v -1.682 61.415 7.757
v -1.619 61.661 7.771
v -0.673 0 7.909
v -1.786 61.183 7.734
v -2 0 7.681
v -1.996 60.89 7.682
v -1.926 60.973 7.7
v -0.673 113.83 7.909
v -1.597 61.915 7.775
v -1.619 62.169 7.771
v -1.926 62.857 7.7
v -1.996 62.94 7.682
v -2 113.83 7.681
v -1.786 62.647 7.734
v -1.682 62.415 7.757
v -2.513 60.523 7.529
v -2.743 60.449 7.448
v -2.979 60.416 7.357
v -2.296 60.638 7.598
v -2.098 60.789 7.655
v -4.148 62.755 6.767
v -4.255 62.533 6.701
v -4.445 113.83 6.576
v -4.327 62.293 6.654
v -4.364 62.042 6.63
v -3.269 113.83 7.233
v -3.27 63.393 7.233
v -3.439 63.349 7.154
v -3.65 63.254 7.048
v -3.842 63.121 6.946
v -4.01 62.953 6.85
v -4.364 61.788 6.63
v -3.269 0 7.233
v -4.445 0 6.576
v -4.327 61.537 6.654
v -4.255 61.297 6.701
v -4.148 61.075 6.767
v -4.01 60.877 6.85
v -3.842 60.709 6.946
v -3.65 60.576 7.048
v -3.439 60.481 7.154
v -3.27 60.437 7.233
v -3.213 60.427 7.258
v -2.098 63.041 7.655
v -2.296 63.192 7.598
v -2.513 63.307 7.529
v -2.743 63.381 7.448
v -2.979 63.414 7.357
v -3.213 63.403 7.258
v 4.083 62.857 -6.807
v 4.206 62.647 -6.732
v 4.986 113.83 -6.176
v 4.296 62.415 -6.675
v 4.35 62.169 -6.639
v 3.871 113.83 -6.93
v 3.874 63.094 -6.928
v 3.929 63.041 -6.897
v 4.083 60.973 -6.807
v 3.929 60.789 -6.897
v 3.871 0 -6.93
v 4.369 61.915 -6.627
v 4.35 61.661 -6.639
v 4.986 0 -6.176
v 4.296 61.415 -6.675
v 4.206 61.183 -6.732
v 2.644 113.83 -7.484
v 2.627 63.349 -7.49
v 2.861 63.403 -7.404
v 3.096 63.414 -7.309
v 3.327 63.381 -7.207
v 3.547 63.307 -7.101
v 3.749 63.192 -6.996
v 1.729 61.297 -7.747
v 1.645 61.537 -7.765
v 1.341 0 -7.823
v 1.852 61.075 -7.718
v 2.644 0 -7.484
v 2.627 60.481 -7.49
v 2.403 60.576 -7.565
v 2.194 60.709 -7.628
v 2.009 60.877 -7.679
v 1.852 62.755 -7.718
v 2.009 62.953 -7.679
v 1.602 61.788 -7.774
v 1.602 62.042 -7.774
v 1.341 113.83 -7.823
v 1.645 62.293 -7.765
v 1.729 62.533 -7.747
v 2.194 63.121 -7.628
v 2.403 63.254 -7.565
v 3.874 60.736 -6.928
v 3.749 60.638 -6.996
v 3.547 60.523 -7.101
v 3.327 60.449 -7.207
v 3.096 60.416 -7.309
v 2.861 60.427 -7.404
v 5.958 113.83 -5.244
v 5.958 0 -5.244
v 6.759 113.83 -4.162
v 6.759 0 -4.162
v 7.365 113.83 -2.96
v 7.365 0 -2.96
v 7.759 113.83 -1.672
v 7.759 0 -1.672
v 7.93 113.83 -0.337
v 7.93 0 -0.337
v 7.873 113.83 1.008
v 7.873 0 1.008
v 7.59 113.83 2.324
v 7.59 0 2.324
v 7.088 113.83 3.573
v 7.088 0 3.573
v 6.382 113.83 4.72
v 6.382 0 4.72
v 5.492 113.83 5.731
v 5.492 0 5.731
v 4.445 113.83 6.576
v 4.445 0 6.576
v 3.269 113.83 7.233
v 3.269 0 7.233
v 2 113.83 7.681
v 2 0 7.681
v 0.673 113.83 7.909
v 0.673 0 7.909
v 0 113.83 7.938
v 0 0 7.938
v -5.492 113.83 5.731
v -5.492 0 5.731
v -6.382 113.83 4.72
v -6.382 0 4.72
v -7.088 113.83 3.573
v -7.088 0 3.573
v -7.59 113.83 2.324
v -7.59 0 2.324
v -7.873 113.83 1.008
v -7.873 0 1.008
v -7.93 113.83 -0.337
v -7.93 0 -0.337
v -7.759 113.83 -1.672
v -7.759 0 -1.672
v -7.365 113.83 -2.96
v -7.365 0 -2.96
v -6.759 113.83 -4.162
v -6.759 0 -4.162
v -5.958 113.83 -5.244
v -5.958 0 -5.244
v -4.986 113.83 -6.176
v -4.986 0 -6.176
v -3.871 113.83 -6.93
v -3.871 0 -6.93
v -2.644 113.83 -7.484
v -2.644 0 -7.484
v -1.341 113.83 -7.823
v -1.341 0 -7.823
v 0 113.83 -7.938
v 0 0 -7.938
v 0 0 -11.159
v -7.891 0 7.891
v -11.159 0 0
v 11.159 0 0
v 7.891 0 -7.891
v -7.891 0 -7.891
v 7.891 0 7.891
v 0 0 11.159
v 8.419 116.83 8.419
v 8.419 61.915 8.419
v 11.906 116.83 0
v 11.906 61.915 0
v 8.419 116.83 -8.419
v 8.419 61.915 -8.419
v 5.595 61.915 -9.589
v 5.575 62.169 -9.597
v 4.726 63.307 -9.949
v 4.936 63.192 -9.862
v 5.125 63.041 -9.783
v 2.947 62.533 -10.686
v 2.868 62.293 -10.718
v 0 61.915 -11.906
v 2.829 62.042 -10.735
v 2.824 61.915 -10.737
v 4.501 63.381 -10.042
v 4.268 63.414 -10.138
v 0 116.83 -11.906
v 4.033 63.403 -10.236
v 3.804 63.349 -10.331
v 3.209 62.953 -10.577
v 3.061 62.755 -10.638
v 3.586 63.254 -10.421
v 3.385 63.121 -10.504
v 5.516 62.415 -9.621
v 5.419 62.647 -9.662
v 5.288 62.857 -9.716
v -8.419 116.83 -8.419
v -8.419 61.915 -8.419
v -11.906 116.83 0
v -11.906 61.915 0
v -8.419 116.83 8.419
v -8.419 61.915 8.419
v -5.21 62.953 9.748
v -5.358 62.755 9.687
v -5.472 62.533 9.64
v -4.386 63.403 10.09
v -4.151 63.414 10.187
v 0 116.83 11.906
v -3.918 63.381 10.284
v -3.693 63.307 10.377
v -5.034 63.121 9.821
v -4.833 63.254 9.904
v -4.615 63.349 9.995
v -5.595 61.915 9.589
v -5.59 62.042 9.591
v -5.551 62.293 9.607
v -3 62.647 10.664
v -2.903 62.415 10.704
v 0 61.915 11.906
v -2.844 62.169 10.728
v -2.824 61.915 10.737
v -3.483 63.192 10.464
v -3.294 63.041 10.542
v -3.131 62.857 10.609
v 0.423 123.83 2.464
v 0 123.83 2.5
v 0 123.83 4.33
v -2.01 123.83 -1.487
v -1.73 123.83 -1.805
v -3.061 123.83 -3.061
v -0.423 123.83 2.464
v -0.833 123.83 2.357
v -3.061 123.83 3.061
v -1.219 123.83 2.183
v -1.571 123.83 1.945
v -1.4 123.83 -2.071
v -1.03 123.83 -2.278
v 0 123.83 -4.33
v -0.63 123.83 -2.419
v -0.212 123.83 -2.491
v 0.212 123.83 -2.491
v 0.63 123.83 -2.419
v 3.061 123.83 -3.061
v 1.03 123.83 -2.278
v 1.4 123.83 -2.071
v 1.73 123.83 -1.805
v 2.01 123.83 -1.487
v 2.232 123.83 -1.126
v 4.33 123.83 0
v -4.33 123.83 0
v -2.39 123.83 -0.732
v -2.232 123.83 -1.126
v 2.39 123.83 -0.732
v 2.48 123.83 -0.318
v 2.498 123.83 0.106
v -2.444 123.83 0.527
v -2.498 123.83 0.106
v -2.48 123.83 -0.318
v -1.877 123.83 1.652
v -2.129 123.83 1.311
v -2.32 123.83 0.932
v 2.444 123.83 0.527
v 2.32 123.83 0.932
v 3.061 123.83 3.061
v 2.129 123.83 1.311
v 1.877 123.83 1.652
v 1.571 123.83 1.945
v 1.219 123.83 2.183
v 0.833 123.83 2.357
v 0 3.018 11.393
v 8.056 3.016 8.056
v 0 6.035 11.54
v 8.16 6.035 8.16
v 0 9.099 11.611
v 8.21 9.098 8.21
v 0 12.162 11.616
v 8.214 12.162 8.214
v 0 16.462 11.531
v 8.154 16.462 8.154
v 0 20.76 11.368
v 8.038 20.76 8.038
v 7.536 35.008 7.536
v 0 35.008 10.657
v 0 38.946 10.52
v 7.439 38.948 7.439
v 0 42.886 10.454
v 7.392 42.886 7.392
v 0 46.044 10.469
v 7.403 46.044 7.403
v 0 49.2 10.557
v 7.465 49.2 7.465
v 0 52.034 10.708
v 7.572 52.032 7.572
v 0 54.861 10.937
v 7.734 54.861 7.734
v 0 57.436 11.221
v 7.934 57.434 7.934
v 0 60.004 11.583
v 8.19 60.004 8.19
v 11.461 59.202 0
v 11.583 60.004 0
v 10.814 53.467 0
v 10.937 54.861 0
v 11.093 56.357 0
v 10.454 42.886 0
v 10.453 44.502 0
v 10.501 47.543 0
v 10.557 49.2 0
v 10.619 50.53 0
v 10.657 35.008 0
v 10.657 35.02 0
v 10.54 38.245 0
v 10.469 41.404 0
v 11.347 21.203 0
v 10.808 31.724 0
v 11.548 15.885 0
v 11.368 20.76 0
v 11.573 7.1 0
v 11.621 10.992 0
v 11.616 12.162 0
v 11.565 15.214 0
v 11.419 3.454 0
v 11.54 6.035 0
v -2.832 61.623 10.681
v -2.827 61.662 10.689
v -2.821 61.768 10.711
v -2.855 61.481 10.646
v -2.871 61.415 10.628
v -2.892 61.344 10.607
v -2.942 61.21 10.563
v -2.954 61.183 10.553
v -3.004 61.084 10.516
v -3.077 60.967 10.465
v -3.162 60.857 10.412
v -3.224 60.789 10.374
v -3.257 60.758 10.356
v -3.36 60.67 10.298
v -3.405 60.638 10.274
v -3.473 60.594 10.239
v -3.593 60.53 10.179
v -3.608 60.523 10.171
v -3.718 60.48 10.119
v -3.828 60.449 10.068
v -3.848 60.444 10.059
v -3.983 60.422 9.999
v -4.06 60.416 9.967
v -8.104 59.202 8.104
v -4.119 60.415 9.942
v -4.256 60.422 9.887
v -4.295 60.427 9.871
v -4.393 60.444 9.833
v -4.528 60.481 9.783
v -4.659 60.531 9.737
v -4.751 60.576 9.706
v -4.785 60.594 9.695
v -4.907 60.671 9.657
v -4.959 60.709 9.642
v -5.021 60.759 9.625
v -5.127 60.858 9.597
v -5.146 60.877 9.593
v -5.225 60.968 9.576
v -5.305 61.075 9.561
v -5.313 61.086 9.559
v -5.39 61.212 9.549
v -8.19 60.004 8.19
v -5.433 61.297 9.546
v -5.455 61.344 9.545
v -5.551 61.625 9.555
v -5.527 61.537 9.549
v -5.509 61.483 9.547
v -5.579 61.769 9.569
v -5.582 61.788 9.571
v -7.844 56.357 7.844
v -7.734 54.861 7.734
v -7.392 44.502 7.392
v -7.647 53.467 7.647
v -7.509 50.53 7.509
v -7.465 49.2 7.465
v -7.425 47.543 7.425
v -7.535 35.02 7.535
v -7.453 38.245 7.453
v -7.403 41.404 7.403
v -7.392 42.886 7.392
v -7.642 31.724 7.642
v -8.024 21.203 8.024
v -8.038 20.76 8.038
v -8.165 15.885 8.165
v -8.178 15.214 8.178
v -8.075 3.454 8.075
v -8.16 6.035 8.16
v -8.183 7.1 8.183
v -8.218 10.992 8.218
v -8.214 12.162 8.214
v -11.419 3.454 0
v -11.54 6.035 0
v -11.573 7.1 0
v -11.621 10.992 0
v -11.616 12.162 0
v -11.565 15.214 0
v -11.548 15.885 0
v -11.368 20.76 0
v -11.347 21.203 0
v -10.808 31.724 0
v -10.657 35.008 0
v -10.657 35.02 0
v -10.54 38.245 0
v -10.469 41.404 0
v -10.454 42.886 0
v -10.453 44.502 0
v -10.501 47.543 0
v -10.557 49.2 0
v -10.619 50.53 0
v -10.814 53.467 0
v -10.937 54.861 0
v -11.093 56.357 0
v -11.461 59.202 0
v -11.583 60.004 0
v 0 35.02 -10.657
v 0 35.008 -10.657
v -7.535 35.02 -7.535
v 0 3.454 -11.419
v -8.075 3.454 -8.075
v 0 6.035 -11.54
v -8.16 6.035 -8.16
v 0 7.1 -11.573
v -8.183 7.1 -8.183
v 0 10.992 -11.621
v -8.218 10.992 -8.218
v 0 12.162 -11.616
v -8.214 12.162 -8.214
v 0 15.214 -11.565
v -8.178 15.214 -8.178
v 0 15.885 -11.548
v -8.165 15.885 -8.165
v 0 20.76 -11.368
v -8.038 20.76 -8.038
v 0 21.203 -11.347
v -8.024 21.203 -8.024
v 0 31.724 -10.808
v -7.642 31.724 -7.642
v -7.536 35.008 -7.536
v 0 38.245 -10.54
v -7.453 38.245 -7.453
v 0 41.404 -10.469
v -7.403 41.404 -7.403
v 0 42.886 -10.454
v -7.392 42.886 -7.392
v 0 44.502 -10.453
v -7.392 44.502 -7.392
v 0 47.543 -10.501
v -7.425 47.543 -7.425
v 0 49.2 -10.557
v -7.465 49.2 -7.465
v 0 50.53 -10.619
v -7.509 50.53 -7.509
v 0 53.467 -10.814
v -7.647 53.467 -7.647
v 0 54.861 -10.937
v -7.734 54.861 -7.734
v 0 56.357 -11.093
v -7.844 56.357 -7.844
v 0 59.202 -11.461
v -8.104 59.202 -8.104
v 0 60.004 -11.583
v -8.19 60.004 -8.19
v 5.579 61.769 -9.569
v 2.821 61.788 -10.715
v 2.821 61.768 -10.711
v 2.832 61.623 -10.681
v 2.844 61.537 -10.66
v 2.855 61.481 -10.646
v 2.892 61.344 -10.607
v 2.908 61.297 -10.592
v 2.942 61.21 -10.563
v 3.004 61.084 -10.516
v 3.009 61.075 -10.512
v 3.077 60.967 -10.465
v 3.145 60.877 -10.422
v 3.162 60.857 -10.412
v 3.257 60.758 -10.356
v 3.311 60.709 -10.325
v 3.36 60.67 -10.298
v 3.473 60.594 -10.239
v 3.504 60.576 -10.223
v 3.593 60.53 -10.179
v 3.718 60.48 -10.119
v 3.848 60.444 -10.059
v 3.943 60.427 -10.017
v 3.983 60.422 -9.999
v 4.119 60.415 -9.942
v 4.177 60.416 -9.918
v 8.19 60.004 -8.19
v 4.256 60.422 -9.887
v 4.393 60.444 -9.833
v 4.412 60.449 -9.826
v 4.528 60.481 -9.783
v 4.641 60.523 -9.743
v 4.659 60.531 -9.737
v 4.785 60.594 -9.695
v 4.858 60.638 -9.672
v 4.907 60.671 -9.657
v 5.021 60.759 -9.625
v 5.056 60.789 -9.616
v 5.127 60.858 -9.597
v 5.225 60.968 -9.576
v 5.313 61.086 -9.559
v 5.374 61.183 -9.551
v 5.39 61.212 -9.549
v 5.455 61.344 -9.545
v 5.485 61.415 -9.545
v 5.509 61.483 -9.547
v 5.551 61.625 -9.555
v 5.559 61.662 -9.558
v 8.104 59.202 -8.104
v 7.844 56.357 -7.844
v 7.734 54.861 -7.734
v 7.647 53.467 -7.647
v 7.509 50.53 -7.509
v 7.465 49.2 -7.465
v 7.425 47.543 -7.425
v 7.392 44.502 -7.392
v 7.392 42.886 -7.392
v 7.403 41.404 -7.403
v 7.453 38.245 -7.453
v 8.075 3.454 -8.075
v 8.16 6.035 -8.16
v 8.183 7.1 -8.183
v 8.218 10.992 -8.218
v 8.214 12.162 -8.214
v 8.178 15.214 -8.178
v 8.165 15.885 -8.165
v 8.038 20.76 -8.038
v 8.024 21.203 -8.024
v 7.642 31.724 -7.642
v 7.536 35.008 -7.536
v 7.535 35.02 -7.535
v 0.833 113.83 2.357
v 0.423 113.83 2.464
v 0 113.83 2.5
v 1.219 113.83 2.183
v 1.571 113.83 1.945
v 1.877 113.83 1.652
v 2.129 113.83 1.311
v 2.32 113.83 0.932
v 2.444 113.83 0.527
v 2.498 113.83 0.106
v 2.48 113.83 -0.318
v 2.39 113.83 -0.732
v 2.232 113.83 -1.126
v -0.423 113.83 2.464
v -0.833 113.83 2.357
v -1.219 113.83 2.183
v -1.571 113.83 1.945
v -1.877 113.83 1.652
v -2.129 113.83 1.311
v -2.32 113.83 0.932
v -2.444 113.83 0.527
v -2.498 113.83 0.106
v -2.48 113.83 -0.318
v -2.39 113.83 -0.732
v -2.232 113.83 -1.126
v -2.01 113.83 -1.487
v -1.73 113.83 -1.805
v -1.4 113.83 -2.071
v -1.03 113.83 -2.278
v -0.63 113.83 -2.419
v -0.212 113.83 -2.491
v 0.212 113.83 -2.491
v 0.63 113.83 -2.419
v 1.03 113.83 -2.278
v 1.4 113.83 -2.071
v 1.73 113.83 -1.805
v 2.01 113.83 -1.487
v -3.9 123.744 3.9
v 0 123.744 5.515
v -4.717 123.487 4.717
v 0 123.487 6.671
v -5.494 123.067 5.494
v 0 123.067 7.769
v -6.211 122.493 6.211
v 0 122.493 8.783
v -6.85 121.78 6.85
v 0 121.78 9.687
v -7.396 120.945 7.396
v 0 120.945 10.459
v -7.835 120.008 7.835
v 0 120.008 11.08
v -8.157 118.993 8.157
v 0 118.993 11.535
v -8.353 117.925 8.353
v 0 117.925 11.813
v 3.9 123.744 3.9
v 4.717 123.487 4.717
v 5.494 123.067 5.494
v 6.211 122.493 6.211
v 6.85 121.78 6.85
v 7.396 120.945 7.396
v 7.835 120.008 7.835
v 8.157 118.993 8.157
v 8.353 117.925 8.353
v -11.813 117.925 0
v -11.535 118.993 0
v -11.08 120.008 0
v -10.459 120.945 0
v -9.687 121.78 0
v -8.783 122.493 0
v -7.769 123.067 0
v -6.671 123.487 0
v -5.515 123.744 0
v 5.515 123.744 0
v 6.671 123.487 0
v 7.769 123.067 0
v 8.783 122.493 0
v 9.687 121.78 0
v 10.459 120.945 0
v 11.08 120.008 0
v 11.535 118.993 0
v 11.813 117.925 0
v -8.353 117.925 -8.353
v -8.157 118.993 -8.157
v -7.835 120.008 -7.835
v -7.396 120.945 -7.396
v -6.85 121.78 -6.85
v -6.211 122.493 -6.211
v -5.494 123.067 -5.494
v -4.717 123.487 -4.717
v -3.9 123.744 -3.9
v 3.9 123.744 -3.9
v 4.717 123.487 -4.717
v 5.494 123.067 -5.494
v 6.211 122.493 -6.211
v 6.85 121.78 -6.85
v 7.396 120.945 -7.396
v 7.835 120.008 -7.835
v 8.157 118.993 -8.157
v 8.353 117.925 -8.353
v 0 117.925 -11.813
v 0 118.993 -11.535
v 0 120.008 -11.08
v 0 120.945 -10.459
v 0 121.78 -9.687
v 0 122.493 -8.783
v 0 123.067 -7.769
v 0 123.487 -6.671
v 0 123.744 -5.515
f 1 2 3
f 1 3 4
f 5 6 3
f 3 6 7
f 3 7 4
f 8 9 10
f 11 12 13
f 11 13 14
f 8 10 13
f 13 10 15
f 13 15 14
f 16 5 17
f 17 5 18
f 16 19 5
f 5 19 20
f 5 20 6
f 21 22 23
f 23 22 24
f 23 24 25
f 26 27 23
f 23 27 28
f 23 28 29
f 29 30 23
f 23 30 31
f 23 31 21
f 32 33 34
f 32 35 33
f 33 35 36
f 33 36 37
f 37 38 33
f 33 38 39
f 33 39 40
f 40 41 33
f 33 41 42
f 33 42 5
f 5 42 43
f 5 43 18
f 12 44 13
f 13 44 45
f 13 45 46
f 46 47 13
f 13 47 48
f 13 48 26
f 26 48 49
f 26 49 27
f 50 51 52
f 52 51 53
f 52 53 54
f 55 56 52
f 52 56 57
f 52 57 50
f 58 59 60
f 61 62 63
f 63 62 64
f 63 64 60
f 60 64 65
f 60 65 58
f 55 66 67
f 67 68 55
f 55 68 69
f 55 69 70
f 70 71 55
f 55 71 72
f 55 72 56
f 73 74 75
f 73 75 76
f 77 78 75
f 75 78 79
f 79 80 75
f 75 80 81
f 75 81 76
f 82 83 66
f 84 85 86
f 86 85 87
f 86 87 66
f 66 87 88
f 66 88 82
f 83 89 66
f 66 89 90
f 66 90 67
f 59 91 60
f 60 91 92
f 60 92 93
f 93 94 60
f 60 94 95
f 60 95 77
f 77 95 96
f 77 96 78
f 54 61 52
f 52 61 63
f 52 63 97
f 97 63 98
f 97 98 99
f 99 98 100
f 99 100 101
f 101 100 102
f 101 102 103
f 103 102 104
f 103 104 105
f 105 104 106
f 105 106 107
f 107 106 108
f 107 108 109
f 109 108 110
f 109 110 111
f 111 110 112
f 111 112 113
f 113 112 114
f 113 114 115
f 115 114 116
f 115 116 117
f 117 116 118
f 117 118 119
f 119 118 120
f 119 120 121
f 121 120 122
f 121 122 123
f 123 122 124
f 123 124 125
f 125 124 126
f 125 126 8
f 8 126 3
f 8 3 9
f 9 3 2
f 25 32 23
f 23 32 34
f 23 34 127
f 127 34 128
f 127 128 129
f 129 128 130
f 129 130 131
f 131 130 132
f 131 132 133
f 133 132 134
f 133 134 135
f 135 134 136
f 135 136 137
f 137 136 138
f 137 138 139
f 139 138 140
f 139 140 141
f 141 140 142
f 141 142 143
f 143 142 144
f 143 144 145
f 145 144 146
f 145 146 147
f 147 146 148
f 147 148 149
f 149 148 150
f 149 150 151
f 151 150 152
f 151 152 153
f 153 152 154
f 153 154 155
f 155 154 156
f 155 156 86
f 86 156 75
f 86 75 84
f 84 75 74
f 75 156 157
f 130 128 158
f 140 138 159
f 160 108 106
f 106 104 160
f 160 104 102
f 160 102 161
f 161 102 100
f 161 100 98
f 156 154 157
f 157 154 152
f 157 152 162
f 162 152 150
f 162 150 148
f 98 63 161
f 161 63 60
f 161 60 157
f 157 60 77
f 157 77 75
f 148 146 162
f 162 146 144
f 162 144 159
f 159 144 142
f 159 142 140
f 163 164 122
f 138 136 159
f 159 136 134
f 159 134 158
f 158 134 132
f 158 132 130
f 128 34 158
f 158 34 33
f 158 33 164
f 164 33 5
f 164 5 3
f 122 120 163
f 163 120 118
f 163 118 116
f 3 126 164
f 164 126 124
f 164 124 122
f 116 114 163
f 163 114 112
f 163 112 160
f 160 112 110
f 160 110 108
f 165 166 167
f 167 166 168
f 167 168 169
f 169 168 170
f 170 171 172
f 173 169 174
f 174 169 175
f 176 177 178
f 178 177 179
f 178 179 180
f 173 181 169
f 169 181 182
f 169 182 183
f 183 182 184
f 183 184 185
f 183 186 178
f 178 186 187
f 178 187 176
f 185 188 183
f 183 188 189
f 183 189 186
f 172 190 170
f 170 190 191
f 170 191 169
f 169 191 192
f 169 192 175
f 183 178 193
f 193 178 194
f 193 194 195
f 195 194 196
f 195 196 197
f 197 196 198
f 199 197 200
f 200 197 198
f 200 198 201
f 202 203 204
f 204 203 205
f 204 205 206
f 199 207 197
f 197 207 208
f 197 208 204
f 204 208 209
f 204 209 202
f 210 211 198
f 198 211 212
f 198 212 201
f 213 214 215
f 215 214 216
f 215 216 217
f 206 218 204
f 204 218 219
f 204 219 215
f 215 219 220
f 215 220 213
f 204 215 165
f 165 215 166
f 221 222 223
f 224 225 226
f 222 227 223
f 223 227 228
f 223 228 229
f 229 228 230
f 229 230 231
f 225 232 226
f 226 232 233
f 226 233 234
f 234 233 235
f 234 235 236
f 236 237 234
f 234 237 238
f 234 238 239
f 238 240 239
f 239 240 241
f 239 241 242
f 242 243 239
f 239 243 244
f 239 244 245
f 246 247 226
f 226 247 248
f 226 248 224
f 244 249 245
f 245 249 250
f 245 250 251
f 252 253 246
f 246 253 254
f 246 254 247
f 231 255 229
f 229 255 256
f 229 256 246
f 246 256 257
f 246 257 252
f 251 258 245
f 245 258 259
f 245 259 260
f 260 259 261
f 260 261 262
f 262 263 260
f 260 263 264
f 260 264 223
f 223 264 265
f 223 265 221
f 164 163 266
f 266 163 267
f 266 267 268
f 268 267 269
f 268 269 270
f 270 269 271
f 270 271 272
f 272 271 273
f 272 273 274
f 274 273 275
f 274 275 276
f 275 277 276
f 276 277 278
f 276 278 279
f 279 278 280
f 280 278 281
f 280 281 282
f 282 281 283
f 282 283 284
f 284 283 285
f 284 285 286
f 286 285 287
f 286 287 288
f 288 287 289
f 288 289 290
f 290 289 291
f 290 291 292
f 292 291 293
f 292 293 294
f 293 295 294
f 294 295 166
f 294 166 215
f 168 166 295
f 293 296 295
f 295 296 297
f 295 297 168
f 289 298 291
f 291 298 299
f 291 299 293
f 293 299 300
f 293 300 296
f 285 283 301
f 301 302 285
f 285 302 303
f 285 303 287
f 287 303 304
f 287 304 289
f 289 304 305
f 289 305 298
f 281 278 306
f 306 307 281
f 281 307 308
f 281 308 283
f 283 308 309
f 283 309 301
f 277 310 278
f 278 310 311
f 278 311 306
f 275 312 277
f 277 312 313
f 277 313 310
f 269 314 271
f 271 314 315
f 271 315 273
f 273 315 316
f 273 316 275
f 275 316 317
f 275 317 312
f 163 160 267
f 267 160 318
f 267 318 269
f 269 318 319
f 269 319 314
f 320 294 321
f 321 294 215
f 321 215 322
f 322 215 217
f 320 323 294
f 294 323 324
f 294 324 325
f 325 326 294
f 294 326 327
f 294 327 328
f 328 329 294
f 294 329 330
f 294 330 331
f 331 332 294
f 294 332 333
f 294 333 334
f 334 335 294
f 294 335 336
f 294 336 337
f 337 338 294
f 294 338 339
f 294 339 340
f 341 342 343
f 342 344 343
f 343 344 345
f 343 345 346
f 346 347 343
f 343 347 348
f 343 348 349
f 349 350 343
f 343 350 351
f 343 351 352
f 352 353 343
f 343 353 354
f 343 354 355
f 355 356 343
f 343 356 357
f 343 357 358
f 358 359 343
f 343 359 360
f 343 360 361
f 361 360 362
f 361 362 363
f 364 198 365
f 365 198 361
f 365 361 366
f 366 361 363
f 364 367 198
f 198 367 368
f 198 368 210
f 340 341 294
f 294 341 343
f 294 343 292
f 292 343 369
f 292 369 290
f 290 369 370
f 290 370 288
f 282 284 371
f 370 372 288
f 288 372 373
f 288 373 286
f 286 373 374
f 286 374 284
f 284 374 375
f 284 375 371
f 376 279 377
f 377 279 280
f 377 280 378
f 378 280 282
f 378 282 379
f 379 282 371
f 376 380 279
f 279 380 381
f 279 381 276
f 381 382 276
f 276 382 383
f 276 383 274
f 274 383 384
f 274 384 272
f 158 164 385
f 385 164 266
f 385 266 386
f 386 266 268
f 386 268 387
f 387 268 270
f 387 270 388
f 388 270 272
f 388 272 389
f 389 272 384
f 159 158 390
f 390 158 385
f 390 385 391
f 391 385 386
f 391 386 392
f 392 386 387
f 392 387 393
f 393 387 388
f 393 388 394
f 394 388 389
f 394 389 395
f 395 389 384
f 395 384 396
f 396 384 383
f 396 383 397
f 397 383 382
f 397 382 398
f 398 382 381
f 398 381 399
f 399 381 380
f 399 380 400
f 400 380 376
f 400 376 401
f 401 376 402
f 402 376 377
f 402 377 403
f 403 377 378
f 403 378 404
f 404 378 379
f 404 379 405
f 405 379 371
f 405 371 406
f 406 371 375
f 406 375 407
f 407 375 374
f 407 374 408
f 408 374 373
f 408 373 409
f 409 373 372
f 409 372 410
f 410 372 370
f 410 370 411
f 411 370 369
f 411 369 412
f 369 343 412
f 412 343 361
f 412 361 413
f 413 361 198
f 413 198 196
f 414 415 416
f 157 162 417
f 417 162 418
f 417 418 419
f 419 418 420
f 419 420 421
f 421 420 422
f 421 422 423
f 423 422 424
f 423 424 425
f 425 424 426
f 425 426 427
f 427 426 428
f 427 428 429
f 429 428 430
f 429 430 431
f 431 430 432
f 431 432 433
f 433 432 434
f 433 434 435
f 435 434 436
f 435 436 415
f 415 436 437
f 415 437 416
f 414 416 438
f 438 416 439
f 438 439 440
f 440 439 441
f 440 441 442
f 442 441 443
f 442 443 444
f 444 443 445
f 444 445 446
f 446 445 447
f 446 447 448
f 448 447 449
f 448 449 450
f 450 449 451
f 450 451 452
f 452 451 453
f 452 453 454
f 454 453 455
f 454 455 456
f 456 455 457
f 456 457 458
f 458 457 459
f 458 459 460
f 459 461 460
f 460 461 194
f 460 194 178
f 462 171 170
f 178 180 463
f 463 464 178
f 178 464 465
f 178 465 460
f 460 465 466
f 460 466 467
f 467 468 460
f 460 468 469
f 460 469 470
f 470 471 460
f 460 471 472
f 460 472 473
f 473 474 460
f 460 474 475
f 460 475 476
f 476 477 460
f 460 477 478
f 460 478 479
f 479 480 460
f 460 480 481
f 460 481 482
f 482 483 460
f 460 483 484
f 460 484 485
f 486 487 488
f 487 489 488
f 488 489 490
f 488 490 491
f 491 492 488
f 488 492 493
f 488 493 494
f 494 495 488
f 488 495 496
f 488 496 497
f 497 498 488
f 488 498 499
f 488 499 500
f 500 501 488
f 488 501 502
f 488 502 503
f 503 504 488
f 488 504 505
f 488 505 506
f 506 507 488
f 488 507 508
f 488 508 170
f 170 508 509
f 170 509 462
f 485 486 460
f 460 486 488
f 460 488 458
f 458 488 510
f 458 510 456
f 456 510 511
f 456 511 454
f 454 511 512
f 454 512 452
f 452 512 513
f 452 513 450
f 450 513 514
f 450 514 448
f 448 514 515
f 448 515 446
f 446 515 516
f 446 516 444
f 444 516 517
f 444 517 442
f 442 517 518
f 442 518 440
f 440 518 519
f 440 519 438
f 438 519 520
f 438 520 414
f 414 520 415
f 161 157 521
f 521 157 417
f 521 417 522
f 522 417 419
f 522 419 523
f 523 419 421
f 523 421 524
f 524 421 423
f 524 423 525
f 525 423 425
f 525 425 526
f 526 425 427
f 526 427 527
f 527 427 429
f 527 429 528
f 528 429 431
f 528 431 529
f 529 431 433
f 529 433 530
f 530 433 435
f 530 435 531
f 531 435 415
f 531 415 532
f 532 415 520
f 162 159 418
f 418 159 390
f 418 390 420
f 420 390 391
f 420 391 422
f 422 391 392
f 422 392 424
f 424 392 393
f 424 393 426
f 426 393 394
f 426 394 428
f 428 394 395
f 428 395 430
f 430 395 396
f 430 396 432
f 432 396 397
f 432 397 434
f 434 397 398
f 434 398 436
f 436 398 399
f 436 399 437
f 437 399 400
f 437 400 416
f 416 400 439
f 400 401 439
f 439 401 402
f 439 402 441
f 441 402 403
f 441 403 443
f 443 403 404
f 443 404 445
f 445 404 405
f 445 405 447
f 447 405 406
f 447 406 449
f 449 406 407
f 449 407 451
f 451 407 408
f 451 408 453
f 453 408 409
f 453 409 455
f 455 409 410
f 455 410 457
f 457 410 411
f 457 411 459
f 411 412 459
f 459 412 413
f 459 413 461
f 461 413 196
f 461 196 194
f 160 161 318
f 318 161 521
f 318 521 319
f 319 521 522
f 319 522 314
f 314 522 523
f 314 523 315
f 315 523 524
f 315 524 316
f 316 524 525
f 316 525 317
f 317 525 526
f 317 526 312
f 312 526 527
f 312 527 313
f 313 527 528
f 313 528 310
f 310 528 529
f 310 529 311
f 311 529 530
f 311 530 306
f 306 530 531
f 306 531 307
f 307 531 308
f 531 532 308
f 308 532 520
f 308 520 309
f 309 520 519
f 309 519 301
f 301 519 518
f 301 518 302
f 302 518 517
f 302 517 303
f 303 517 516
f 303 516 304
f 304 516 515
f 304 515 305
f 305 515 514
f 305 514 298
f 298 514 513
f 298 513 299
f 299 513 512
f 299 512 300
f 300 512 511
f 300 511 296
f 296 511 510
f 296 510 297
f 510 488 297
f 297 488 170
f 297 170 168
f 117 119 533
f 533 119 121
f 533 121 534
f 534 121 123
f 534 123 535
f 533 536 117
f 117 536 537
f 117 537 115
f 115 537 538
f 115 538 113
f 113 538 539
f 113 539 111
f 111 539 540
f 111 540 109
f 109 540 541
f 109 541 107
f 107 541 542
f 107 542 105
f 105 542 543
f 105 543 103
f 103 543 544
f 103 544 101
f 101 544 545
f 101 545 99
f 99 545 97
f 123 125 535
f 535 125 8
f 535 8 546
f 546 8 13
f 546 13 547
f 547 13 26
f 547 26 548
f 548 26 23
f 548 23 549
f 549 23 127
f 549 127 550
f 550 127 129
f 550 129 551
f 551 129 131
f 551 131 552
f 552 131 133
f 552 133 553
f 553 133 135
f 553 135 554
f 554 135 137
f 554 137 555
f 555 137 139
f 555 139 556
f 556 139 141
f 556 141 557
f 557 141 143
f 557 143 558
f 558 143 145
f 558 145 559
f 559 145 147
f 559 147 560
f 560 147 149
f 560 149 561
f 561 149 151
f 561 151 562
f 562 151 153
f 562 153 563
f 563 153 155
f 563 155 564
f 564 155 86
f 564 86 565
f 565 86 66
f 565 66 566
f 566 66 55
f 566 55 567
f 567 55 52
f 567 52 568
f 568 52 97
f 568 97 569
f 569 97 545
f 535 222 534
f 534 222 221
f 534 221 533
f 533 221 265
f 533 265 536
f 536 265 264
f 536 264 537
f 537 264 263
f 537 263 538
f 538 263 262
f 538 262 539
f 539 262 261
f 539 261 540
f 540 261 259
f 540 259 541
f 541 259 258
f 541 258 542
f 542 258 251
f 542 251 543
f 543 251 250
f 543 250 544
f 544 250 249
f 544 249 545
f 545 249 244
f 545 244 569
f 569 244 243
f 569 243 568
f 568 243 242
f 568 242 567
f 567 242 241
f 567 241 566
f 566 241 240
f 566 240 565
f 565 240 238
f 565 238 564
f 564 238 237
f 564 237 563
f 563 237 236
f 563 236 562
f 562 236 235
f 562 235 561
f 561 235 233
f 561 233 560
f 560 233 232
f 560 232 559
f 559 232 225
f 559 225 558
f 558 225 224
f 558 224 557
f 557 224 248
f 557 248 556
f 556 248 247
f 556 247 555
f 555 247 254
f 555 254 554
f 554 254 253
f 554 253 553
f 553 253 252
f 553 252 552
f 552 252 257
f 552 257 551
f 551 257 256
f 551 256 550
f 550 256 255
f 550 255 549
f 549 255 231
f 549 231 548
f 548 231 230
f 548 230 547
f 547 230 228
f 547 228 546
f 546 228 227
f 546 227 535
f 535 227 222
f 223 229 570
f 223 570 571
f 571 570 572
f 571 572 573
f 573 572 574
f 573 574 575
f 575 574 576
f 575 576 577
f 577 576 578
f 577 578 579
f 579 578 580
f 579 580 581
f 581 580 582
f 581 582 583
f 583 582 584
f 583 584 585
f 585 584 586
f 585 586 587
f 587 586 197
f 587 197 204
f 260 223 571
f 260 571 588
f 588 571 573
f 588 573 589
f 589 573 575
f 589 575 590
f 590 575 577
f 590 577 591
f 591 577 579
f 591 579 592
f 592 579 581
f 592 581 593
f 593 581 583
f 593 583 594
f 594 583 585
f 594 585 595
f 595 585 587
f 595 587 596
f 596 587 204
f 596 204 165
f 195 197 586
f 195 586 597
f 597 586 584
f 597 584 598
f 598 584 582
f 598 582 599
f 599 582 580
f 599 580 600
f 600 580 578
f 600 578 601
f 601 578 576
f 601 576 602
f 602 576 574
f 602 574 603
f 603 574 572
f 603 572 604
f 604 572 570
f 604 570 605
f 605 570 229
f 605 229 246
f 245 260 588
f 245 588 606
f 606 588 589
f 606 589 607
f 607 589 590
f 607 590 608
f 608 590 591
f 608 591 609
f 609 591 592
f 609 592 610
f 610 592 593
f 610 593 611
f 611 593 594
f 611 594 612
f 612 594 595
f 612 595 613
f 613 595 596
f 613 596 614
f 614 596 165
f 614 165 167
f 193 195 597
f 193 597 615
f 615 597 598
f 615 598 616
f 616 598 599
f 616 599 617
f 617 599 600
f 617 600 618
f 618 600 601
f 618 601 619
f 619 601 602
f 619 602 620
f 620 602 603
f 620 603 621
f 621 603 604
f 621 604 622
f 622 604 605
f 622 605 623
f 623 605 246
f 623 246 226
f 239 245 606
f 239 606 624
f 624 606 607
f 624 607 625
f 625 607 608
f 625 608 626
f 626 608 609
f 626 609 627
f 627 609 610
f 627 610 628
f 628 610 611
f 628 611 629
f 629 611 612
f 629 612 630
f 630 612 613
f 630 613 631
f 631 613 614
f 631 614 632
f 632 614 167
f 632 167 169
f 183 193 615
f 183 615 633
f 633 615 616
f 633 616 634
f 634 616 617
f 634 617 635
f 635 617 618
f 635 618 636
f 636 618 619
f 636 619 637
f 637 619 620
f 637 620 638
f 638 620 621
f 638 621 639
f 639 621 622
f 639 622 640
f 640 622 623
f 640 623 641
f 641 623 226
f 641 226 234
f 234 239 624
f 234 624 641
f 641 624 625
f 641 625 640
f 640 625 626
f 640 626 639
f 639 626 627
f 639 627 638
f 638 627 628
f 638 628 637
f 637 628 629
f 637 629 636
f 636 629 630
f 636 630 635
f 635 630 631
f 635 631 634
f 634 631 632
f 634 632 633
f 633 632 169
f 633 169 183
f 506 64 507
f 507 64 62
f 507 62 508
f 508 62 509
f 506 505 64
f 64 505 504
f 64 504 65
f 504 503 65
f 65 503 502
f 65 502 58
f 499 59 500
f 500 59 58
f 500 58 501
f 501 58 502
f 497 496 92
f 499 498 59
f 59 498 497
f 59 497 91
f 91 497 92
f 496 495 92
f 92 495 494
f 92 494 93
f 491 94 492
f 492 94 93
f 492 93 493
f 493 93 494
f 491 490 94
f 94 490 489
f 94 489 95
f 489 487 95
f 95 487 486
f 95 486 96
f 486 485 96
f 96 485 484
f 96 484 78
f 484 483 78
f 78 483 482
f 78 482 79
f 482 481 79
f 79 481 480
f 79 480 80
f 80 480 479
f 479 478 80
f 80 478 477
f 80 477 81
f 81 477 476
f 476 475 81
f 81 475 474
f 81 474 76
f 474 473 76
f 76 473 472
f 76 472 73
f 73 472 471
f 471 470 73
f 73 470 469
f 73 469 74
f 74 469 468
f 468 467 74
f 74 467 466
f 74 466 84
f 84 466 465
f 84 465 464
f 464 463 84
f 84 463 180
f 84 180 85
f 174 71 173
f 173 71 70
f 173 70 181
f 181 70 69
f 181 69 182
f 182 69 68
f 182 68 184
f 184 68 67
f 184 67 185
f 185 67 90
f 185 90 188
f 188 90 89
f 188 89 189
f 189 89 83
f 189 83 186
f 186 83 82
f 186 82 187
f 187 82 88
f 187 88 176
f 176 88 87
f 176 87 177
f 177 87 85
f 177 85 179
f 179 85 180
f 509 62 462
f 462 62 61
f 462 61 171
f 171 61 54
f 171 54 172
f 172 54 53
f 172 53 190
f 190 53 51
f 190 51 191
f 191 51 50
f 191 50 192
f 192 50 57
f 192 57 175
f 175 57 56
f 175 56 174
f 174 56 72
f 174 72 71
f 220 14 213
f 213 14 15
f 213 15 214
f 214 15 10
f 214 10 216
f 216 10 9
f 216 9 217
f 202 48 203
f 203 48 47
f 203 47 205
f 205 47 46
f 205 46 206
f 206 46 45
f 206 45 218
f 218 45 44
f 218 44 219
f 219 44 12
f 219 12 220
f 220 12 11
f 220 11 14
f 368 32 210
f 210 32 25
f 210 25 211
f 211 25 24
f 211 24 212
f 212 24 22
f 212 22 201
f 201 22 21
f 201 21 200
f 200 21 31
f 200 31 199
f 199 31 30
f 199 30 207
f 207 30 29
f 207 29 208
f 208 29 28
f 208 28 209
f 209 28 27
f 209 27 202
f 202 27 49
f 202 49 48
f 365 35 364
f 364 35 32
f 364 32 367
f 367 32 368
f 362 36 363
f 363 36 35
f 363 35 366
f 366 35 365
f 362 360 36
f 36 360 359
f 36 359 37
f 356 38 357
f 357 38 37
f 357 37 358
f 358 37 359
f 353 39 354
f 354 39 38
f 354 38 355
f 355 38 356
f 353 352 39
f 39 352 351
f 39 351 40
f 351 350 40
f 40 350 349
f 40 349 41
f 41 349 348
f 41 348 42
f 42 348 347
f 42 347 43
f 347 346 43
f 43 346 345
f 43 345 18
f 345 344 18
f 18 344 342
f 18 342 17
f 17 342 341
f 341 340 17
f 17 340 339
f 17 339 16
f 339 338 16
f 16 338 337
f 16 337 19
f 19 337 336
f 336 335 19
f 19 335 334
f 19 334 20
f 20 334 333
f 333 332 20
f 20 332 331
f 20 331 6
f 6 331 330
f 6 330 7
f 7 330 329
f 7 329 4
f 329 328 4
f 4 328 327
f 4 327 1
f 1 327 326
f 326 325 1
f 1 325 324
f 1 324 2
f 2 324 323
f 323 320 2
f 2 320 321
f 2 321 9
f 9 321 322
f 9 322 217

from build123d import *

# Parameters (mm, degrees)
EXTRUDE_1_DEPTH          = 123.83
CUT_EXTRUDE_1_DEPTH      = 10
PATTERN_CIRCULAR_4_COUNT = 8
SKETCH_5_R               = 7.9375
SKETCH_5_R_2             = 2.5
EXTRUDE_2_DEPTH          = 10
FILLET_1_R               = 7
SKETCH_7_R               = 1.5
CUT_EXTRUDE_3_DEPTH      = 40


with BuildPart() as part:
    # Sketch 1 → Extrude 1 (new body)
    with BuildSketch(Plane(origin=(0, 0, 0), x_dir=(1, 0, 0), z_dir=(0, 1, 0))):
        with BuildLine():
            Line((0, -11.906314203), (0, -7.9375))
            ThreePointArc((0, -7.9375), (3.037549744, -7.333293789), (5.612660076, -5.612660076))
            Line((5.612660076, -5.612660076), (8.419035512, -8.419035512))
            Line((8.419035512, -8.419035512), (0, -11.906314203))
        make_face()
    extrude_1 = extrude(amount=EXTRUDE_1_DEPTH)

    # Sketch 4 → Cut-Extrude 1 (cut, symmetric)
    with BuildSketch(Plane(origin=(0, 0, 0), x_dir=(0, 1, 0), z_dir=(0.923879533, 0, -0.382683432))):
        with BuildLine():
            Line((0, 13.154938161), (61.915, 13.154938161))
            Line((61.915, 13.154938161), (61.915, 11))
            add(Edge.make_bspline(
                [(61.915, 11), (41.306817411, 7.531903846), (20.665469899, 12.083633252), (0, 10.31)],
                knots=[0, 0, 0, 0, 1, 1, 1, 1], degree=3))
            Line((0, 10.31), (0, 13.154938161))
        make_face()
    cut_extrude_1 = extrude(amount=CUT_EXTRUDE_1_DEPTH, both=True, mode=Mode.SUBTRACT)

    # Pattern Circular 4: Extrude 1, Cut-Extrude 1 ×8 about axis
    pattern_circular_4_axis = Axis((0, 0, 0), (0, -1, 0))
    for i in range(1, PATTERN_CIRCULAR_4_COUNT):
        add(extrude_1.rotate(pattern_circular_4_axis, i * 360 / PATTERN_CIRCULAR_4_COUNT))
        add(cut_extrude_1.rotate(pattern_circular_4_axis, i * 360 / PATTERN_CIRCULAR_4_COUNT), mode=Mode.SUBTRACT)

    # Sketch 5 → Extrude 2 (add)
    with BuildSketch(Plane(origin=(0, 123.83, 0), x_dir=(1, 0, 0), z_dir=(0, 1, 0))):
        Circle(SKETCH_5_R)
        Circle(SKETCH_5_R_2, mode=Mode.SUBTRACT)
    extrude(amount=-EXTRUDE_2_DEPTH)

    # Fillet 1
    fillet_1_edges = [part.edges().sort_by_distance(p)[0] for p in [
        (10.162674858, 123.83, 4.209517756),
        (10.162674858, 123.83, -4.209517756),
        (4.209517756, 123.83, -10.162674858),
        (-4.209517756, 123.83, -10.162674858),
        (-10.162674858, 123.83, -4.209517756),
        (-10.162674858, 123.83, 4.209517756),
        (-4.209517756, 123.83, 10.162674858),
        (4.209517756, 123.83, 10.162674858),
    ]]
    fillet(fillet_1_edges, radius=FILLET_1_R)

    # Sketch 7 → Cut-Extrude 3 (cut)
    with BuildSketch(Plane(origin=(-4.209517756, 0, 10.162674858), x_dir=(0.923879533, 0, 0.382683432), z_dir=(-0.382683432, 0, 0.923879533))):
        with Locations((0, 61.915)):
            Circle(SKETCH_7_R)
    extrude(amount=-CUT_EXTRUDE_3_DEPTH, mode=Mode.SUBTRACT)


solid = part.part
